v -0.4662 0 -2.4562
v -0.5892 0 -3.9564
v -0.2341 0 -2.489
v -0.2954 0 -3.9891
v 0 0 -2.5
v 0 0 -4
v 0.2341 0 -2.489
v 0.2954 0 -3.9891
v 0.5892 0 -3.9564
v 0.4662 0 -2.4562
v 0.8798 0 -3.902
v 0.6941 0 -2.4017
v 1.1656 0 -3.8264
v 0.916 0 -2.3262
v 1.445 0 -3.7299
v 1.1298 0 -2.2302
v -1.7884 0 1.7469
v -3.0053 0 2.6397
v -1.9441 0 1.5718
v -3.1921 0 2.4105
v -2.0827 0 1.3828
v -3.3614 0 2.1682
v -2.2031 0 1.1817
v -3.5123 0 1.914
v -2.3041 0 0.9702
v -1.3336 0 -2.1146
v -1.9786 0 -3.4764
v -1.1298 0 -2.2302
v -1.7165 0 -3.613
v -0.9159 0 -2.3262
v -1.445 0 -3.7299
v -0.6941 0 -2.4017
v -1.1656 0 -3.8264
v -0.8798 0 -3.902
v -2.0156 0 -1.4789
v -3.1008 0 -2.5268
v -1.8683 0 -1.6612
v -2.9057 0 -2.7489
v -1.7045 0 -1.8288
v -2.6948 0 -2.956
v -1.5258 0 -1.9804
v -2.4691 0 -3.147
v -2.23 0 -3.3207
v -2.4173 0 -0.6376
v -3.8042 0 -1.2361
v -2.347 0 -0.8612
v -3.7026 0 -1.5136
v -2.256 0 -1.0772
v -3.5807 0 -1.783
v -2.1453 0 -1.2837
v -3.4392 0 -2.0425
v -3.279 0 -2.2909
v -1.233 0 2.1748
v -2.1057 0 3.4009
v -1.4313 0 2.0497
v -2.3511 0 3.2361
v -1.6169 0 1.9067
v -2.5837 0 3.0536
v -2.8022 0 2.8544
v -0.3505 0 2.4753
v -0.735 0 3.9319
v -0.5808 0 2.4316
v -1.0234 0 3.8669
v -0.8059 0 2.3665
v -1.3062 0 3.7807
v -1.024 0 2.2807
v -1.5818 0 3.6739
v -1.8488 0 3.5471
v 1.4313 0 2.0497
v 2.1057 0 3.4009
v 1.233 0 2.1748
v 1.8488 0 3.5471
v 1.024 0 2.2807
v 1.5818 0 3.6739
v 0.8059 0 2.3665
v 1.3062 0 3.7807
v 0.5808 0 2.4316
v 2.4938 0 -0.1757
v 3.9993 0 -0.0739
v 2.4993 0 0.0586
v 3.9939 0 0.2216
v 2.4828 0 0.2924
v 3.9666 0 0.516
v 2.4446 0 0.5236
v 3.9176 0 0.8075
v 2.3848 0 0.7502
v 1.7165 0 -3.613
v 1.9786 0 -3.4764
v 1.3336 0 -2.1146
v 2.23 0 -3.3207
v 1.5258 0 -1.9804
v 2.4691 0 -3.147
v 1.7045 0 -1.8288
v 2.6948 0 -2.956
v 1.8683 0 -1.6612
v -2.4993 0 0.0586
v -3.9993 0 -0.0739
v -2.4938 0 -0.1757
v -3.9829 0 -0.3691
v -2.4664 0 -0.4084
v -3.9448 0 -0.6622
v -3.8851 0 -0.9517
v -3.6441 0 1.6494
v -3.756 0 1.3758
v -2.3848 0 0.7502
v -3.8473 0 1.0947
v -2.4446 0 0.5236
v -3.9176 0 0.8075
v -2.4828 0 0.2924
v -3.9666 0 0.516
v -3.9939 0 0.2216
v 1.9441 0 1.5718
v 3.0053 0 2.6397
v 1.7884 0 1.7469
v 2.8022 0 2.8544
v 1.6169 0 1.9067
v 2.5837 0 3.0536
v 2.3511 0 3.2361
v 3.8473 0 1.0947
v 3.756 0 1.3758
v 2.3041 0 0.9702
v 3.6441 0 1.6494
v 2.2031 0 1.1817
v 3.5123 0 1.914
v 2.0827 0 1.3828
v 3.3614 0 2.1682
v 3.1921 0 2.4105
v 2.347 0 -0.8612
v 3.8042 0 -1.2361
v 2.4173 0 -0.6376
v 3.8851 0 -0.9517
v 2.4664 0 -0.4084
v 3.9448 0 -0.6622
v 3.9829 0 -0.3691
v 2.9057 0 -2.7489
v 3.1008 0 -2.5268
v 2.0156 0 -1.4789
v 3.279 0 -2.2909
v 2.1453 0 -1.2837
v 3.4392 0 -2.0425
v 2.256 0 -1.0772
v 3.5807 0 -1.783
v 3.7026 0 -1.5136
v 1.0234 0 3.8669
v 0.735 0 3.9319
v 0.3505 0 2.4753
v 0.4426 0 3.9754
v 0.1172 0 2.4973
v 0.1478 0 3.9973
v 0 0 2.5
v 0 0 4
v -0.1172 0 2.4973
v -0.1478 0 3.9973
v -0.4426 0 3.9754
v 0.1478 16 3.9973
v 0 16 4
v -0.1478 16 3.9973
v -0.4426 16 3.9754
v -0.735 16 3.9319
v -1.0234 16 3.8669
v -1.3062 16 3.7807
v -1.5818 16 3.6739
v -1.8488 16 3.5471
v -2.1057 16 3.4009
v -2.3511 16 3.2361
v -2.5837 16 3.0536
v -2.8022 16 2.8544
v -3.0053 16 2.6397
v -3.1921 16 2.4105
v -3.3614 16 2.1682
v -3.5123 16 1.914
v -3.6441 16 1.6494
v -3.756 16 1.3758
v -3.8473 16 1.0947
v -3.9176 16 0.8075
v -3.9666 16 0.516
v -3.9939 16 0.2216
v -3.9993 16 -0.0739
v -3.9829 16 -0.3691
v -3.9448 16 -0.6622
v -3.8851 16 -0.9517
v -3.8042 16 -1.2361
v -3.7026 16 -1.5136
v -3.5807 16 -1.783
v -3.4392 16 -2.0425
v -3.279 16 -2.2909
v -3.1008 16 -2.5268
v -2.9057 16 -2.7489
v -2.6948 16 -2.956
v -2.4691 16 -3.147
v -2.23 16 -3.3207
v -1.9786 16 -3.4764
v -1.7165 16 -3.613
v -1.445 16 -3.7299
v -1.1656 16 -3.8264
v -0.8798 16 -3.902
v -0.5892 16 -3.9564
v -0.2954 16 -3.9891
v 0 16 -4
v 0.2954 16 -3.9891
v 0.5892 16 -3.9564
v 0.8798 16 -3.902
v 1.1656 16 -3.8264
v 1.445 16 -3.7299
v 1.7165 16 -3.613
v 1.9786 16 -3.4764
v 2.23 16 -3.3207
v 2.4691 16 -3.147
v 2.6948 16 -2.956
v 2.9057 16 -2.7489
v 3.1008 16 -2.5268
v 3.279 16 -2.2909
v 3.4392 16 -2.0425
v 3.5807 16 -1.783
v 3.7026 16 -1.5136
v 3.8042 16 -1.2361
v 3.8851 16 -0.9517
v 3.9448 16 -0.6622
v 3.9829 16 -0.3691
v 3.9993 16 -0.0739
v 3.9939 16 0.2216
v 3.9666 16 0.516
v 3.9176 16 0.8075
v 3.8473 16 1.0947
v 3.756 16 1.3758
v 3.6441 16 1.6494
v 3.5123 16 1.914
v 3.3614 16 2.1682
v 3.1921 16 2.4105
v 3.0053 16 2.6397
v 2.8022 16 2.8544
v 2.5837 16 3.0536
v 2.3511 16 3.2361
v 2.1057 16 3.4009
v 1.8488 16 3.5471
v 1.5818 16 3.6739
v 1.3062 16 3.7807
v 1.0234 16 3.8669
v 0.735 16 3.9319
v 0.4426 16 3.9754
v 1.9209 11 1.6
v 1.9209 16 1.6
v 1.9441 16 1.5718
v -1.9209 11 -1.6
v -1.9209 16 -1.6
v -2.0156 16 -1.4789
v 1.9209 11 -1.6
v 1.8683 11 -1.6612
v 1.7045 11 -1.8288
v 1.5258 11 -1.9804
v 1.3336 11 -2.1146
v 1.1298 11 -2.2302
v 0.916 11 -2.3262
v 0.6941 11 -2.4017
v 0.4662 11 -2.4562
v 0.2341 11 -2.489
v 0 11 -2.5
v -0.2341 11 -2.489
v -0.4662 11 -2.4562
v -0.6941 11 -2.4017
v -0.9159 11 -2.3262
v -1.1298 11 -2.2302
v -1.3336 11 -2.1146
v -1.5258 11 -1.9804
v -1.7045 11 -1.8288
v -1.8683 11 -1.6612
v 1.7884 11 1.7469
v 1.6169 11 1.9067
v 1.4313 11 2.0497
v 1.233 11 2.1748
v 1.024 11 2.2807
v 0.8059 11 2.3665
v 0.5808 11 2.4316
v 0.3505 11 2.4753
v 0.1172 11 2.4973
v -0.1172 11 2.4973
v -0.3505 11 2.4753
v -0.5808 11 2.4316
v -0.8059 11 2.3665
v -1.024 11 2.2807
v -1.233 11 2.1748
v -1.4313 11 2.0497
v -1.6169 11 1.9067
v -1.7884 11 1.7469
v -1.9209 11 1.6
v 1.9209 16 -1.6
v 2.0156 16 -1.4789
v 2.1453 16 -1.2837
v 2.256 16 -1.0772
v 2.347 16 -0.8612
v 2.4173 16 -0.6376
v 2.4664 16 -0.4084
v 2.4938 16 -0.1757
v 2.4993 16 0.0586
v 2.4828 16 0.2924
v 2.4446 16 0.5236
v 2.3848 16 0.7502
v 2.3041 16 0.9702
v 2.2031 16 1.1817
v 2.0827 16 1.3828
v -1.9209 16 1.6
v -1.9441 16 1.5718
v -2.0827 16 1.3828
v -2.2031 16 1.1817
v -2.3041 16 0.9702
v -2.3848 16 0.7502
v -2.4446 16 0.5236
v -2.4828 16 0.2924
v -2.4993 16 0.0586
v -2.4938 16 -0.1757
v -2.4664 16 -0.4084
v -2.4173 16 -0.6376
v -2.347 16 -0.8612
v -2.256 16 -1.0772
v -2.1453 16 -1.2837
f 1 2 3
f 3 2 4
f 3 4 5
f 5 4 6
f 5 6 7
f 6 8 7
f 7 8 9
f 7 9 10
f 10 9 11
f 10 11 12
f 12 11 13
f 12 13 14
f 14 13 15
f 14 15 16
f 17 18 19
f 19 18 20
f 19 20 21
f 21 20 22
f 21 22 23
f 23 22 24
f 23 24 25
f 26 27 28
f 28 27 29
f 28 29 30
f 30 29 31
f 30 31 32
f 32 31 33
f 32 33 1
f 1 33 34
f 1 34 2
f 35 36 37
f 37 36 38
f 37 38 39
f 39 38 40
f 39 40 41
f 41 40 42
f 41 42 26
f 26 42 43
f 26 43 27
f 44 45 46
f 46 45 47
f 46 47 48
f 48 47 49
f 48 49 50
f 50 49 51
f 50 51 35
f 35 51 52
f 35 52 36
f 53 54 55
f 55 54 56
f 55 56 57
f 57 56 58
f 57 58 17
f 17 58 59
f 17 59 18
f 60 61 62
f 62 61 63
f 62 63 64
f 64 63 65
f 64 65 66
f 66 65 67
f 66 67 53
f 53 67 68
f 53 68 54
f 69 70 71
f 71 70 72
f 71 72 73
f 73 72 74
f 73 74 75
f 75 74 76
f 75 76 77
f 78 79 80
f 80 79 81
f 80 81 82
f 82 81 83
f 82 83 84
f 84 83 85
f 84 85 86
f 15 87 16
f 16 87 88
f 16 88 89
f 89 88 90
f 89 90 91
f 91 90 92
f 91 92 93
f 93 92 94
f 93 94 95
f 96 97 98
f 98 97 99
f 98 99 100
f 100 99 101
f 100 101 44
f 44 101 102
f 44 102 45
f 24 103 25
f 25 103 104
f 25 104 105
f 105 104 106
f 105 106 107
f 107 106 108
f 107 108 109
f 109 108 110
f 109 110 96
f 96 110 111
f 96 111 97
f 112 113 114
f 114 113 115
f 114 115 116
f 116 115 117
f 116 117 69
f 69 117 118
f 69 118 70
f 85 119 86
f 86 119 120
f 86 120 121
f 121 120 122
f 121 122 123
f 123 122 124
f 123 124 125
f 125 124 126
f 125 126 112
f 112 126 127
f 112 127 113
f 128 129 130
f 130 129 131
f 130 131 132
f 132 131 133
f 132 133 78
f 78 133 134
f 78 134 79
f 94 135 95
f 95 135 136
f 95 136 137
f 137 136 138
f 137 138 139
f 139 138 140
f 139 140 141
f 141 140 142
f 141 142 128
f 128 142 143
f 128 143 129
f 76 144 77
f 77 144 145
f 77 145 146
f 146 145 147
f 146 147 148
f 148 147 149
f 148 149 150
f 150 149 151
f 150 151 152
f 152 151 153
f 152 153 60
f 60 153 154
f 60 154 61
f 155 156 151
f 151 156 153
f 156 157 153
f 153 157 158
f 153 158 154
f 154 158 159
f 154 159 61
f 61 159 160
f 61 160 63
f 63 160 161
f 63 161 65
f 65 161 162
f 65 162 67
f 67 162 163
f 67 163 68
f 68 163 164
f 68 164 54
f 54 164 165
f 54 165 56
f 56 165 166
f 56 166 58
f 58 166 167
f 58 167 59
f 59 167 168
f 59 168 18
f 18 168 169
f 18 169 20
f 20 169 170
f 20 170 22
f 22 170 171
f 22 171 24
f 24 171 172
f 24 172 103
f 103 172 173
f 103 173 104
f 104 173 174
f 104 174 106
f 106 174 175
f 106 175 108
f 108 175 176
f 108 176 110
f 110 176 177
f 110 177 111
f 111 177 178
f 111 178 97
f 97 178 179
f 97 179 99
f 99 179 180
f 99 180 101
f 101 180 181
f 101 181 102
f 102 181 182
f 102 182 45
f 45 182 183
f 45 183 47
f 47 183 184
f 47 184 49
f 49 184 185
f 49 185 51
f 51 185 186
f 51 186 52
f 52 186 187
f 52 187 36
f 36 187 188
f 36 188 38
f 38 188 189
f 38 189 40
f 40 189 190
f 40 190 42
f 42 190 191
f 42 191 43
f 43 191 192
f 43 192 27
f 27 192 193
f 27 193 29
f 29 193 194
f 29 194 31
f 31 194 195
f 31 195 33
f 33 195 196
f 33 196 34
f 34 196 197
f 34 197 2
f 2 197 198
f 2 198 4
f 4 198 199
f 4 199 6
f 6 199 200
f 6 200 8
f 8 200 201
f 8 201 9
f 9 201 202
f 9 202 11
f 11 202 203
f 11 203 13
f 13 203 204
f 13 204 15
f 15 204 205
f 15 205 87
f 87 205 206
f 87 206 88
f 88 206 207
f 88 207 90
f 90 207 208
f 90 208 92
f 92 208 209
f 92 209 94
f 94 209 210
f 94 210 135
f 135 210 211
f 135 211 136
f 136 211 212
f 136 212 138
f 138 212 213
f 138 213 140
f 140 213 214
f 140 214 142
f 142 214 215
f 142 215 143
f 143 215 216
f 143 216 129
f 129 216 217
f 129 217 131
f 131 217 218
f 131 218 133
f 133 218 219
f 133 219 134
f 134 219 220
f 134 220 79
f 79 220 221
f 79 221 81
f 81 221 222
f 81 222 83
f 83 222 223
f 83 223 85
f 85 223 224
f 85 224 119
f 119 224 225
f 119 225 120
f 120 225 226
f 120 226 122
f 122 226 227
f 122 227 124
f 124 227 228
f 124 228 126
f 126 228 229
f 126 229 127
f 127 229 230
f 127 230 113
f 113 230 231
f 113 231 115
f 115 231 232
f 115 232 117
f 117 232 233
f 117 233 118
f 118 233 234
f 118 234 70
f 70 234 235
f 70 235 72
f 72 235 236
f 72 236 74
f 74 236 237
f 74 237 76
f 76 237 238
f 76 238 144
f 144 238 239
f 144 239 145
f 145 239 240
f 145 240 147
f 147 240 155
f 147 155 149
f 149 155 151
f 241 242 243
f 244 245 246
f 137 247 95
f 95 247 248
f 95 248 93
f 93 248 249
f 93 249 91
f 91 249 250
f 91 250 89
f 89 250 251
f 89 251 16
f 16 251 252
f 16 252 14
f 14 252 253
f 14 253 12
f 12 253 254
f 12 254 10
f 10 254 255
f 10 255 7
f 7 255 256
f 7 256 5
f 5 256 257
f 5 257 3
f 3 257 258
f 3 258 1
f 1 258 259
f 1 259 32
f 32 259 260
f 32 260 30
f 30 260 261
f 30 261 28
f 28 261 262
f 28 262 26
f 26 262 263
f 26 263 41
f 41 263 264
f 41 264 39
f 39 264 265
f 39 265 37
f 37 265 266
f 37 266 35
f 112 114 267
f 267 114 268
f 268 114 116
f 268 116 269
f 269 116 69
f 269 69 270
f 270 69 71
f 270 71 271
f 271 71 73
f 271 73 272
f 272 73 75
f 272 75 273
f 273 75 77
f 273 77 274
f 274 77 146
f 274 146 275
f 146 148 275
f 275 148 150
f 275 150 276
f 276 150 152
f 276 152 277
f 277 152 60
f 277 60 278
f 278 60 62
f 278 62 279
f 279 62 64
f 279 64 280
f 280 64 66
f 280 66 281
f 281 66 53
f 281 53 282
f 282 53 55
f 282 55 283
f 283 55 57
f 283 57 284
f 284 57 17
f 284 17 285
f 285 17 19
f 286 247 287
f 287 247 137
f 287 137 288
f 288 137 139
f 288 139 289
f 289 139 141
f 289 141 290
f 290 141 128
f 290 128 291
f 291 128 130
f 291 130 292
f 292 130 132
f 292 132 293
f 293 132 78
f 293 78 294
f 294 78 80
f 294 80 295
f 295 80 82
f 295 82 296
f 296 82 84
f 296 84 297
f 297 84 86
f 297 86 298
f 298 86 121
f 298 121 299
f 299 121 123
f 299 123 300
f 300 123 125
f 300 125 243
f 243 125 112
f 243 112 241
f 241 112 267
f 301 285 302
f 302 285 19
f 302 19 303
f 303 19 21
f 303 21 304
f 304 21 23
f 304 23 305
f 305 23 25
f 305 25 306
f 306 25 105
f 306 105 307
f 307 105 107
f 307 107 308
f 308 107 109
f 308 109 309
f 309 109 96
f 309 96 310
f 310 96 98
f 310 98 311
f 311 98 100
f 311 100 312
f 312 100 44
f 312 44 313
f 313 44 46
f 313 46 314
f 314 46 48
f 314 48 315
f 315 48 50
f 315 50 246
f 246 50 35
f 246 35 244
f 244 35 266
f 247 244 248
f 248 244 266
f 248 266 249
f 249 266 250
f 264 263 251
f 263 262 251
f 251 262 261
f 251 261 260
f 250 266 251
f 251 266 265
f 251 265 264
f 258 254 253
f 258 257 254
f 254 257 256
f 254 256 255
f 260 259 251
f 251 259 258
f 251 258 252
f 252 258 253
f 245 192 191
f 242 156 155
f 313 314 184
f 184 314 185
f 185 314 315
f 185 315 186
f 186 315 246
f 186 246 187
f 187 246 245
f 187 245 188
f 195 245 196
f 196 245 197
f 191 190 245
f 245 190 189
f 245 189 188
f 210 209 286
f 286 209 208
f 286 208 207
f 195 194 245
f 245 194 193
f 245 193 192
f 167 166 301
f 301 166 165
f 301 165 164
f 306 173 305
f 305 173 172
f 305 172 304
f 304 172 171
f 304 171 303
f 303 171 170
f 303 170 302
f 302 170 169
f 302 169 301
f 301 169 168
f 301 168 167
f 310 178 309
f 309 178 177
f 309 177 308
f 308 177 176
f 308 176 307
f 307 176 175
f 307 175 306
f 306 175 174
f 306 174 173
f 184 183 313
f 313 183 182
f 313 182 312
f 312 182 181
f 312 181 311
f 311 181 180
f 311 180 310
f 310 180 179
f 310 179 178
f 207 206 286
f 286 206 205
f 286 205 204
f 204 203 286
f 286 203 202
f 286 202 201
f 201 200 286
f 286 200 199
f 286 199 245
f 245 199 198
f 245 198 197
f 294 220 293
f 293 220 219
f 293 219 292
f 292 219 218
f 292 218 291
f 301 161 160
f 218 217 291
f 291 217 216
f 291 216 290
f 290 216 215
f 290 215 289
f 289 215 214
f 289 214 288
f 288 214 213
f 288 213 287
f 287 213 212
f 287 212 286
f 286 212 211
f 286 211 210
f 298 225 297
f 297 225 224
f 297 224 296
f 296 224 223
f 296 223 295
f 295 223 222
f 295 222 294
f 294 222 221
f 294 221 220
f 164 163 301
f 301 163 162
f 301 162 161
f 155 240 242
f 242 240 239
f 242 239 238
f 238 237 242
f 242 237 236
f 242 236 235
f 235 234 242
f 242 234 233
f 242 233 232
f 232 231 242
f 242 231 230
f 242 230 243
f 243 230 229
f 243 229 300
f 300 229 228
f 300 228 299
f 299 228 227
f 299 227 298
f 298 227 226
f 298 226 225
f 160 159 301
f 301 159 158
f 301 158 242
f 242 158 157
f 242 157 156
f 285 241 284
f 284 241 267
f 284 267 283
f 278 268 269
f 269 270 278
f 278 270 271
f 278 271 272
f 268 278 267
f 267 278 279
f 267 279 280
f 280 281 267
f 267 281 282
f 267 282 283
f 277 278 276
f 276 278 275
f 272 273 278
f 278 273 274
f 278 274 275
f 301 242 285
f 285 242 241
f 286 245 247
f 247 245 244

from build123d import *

# Parameters (mm, degrees)
SKETCH1_R           = 4
SKETCH1_R_2         = 2.5
BOSS_EXTRUDE1_DEPTH = 11
SKETCH2_R           = 4
BOSS_EXTRUDE2_DEPTH = 5


with BuildPart() as part:
    # Sketch1 → Boss-Extrude1 (new body)
    with BuildSketch(Plane(origin=(0, 0, 0), x_dir=(1, 0, 0), z_dir=(0, 1, 0))):
        with Locations(Location((0, 0, 0), (0, 0, 270))):
            Circle(SKETCH1_R)
        with Locations(Location((0, 0, 0), (0, 0, 270))):
            Circle(SKETCH1_R_2, mode=Mode.SUBTRACT)
    extrude(amount=BOSS_EXTRUDE1_DEPTH)

    # Sketch2 → Boss-Extrude2 (add)
    with BuildSketch(Plane(origin=(0, 11, 0), x_dir=(1, 0, 0), z_dir=(0, 1, 0))):
        with Locations(Location((0, 0, 0), (0, 0, 270))):
            Circle(SKETCH2_R)
        with BuildLine():
            Line((1.920937271, 1.6), (-1.920937271, 1.6))
            ThreePointArc((-1.920937271, 1.6), (-2.5, 0), (-1.920937271, -1.6))
            Line((-1.920937271, -1.6), (1.920937271, -1.6))
            ThreePointArc((1.920937271, -1.6), (2.5, 0), (1.920937271, 1.6))
        make_face(mode=Mode.SUBTRACT)
    extrude(amount=BOSS_EXTRUDE2_DEPTH)


solid = part.part
